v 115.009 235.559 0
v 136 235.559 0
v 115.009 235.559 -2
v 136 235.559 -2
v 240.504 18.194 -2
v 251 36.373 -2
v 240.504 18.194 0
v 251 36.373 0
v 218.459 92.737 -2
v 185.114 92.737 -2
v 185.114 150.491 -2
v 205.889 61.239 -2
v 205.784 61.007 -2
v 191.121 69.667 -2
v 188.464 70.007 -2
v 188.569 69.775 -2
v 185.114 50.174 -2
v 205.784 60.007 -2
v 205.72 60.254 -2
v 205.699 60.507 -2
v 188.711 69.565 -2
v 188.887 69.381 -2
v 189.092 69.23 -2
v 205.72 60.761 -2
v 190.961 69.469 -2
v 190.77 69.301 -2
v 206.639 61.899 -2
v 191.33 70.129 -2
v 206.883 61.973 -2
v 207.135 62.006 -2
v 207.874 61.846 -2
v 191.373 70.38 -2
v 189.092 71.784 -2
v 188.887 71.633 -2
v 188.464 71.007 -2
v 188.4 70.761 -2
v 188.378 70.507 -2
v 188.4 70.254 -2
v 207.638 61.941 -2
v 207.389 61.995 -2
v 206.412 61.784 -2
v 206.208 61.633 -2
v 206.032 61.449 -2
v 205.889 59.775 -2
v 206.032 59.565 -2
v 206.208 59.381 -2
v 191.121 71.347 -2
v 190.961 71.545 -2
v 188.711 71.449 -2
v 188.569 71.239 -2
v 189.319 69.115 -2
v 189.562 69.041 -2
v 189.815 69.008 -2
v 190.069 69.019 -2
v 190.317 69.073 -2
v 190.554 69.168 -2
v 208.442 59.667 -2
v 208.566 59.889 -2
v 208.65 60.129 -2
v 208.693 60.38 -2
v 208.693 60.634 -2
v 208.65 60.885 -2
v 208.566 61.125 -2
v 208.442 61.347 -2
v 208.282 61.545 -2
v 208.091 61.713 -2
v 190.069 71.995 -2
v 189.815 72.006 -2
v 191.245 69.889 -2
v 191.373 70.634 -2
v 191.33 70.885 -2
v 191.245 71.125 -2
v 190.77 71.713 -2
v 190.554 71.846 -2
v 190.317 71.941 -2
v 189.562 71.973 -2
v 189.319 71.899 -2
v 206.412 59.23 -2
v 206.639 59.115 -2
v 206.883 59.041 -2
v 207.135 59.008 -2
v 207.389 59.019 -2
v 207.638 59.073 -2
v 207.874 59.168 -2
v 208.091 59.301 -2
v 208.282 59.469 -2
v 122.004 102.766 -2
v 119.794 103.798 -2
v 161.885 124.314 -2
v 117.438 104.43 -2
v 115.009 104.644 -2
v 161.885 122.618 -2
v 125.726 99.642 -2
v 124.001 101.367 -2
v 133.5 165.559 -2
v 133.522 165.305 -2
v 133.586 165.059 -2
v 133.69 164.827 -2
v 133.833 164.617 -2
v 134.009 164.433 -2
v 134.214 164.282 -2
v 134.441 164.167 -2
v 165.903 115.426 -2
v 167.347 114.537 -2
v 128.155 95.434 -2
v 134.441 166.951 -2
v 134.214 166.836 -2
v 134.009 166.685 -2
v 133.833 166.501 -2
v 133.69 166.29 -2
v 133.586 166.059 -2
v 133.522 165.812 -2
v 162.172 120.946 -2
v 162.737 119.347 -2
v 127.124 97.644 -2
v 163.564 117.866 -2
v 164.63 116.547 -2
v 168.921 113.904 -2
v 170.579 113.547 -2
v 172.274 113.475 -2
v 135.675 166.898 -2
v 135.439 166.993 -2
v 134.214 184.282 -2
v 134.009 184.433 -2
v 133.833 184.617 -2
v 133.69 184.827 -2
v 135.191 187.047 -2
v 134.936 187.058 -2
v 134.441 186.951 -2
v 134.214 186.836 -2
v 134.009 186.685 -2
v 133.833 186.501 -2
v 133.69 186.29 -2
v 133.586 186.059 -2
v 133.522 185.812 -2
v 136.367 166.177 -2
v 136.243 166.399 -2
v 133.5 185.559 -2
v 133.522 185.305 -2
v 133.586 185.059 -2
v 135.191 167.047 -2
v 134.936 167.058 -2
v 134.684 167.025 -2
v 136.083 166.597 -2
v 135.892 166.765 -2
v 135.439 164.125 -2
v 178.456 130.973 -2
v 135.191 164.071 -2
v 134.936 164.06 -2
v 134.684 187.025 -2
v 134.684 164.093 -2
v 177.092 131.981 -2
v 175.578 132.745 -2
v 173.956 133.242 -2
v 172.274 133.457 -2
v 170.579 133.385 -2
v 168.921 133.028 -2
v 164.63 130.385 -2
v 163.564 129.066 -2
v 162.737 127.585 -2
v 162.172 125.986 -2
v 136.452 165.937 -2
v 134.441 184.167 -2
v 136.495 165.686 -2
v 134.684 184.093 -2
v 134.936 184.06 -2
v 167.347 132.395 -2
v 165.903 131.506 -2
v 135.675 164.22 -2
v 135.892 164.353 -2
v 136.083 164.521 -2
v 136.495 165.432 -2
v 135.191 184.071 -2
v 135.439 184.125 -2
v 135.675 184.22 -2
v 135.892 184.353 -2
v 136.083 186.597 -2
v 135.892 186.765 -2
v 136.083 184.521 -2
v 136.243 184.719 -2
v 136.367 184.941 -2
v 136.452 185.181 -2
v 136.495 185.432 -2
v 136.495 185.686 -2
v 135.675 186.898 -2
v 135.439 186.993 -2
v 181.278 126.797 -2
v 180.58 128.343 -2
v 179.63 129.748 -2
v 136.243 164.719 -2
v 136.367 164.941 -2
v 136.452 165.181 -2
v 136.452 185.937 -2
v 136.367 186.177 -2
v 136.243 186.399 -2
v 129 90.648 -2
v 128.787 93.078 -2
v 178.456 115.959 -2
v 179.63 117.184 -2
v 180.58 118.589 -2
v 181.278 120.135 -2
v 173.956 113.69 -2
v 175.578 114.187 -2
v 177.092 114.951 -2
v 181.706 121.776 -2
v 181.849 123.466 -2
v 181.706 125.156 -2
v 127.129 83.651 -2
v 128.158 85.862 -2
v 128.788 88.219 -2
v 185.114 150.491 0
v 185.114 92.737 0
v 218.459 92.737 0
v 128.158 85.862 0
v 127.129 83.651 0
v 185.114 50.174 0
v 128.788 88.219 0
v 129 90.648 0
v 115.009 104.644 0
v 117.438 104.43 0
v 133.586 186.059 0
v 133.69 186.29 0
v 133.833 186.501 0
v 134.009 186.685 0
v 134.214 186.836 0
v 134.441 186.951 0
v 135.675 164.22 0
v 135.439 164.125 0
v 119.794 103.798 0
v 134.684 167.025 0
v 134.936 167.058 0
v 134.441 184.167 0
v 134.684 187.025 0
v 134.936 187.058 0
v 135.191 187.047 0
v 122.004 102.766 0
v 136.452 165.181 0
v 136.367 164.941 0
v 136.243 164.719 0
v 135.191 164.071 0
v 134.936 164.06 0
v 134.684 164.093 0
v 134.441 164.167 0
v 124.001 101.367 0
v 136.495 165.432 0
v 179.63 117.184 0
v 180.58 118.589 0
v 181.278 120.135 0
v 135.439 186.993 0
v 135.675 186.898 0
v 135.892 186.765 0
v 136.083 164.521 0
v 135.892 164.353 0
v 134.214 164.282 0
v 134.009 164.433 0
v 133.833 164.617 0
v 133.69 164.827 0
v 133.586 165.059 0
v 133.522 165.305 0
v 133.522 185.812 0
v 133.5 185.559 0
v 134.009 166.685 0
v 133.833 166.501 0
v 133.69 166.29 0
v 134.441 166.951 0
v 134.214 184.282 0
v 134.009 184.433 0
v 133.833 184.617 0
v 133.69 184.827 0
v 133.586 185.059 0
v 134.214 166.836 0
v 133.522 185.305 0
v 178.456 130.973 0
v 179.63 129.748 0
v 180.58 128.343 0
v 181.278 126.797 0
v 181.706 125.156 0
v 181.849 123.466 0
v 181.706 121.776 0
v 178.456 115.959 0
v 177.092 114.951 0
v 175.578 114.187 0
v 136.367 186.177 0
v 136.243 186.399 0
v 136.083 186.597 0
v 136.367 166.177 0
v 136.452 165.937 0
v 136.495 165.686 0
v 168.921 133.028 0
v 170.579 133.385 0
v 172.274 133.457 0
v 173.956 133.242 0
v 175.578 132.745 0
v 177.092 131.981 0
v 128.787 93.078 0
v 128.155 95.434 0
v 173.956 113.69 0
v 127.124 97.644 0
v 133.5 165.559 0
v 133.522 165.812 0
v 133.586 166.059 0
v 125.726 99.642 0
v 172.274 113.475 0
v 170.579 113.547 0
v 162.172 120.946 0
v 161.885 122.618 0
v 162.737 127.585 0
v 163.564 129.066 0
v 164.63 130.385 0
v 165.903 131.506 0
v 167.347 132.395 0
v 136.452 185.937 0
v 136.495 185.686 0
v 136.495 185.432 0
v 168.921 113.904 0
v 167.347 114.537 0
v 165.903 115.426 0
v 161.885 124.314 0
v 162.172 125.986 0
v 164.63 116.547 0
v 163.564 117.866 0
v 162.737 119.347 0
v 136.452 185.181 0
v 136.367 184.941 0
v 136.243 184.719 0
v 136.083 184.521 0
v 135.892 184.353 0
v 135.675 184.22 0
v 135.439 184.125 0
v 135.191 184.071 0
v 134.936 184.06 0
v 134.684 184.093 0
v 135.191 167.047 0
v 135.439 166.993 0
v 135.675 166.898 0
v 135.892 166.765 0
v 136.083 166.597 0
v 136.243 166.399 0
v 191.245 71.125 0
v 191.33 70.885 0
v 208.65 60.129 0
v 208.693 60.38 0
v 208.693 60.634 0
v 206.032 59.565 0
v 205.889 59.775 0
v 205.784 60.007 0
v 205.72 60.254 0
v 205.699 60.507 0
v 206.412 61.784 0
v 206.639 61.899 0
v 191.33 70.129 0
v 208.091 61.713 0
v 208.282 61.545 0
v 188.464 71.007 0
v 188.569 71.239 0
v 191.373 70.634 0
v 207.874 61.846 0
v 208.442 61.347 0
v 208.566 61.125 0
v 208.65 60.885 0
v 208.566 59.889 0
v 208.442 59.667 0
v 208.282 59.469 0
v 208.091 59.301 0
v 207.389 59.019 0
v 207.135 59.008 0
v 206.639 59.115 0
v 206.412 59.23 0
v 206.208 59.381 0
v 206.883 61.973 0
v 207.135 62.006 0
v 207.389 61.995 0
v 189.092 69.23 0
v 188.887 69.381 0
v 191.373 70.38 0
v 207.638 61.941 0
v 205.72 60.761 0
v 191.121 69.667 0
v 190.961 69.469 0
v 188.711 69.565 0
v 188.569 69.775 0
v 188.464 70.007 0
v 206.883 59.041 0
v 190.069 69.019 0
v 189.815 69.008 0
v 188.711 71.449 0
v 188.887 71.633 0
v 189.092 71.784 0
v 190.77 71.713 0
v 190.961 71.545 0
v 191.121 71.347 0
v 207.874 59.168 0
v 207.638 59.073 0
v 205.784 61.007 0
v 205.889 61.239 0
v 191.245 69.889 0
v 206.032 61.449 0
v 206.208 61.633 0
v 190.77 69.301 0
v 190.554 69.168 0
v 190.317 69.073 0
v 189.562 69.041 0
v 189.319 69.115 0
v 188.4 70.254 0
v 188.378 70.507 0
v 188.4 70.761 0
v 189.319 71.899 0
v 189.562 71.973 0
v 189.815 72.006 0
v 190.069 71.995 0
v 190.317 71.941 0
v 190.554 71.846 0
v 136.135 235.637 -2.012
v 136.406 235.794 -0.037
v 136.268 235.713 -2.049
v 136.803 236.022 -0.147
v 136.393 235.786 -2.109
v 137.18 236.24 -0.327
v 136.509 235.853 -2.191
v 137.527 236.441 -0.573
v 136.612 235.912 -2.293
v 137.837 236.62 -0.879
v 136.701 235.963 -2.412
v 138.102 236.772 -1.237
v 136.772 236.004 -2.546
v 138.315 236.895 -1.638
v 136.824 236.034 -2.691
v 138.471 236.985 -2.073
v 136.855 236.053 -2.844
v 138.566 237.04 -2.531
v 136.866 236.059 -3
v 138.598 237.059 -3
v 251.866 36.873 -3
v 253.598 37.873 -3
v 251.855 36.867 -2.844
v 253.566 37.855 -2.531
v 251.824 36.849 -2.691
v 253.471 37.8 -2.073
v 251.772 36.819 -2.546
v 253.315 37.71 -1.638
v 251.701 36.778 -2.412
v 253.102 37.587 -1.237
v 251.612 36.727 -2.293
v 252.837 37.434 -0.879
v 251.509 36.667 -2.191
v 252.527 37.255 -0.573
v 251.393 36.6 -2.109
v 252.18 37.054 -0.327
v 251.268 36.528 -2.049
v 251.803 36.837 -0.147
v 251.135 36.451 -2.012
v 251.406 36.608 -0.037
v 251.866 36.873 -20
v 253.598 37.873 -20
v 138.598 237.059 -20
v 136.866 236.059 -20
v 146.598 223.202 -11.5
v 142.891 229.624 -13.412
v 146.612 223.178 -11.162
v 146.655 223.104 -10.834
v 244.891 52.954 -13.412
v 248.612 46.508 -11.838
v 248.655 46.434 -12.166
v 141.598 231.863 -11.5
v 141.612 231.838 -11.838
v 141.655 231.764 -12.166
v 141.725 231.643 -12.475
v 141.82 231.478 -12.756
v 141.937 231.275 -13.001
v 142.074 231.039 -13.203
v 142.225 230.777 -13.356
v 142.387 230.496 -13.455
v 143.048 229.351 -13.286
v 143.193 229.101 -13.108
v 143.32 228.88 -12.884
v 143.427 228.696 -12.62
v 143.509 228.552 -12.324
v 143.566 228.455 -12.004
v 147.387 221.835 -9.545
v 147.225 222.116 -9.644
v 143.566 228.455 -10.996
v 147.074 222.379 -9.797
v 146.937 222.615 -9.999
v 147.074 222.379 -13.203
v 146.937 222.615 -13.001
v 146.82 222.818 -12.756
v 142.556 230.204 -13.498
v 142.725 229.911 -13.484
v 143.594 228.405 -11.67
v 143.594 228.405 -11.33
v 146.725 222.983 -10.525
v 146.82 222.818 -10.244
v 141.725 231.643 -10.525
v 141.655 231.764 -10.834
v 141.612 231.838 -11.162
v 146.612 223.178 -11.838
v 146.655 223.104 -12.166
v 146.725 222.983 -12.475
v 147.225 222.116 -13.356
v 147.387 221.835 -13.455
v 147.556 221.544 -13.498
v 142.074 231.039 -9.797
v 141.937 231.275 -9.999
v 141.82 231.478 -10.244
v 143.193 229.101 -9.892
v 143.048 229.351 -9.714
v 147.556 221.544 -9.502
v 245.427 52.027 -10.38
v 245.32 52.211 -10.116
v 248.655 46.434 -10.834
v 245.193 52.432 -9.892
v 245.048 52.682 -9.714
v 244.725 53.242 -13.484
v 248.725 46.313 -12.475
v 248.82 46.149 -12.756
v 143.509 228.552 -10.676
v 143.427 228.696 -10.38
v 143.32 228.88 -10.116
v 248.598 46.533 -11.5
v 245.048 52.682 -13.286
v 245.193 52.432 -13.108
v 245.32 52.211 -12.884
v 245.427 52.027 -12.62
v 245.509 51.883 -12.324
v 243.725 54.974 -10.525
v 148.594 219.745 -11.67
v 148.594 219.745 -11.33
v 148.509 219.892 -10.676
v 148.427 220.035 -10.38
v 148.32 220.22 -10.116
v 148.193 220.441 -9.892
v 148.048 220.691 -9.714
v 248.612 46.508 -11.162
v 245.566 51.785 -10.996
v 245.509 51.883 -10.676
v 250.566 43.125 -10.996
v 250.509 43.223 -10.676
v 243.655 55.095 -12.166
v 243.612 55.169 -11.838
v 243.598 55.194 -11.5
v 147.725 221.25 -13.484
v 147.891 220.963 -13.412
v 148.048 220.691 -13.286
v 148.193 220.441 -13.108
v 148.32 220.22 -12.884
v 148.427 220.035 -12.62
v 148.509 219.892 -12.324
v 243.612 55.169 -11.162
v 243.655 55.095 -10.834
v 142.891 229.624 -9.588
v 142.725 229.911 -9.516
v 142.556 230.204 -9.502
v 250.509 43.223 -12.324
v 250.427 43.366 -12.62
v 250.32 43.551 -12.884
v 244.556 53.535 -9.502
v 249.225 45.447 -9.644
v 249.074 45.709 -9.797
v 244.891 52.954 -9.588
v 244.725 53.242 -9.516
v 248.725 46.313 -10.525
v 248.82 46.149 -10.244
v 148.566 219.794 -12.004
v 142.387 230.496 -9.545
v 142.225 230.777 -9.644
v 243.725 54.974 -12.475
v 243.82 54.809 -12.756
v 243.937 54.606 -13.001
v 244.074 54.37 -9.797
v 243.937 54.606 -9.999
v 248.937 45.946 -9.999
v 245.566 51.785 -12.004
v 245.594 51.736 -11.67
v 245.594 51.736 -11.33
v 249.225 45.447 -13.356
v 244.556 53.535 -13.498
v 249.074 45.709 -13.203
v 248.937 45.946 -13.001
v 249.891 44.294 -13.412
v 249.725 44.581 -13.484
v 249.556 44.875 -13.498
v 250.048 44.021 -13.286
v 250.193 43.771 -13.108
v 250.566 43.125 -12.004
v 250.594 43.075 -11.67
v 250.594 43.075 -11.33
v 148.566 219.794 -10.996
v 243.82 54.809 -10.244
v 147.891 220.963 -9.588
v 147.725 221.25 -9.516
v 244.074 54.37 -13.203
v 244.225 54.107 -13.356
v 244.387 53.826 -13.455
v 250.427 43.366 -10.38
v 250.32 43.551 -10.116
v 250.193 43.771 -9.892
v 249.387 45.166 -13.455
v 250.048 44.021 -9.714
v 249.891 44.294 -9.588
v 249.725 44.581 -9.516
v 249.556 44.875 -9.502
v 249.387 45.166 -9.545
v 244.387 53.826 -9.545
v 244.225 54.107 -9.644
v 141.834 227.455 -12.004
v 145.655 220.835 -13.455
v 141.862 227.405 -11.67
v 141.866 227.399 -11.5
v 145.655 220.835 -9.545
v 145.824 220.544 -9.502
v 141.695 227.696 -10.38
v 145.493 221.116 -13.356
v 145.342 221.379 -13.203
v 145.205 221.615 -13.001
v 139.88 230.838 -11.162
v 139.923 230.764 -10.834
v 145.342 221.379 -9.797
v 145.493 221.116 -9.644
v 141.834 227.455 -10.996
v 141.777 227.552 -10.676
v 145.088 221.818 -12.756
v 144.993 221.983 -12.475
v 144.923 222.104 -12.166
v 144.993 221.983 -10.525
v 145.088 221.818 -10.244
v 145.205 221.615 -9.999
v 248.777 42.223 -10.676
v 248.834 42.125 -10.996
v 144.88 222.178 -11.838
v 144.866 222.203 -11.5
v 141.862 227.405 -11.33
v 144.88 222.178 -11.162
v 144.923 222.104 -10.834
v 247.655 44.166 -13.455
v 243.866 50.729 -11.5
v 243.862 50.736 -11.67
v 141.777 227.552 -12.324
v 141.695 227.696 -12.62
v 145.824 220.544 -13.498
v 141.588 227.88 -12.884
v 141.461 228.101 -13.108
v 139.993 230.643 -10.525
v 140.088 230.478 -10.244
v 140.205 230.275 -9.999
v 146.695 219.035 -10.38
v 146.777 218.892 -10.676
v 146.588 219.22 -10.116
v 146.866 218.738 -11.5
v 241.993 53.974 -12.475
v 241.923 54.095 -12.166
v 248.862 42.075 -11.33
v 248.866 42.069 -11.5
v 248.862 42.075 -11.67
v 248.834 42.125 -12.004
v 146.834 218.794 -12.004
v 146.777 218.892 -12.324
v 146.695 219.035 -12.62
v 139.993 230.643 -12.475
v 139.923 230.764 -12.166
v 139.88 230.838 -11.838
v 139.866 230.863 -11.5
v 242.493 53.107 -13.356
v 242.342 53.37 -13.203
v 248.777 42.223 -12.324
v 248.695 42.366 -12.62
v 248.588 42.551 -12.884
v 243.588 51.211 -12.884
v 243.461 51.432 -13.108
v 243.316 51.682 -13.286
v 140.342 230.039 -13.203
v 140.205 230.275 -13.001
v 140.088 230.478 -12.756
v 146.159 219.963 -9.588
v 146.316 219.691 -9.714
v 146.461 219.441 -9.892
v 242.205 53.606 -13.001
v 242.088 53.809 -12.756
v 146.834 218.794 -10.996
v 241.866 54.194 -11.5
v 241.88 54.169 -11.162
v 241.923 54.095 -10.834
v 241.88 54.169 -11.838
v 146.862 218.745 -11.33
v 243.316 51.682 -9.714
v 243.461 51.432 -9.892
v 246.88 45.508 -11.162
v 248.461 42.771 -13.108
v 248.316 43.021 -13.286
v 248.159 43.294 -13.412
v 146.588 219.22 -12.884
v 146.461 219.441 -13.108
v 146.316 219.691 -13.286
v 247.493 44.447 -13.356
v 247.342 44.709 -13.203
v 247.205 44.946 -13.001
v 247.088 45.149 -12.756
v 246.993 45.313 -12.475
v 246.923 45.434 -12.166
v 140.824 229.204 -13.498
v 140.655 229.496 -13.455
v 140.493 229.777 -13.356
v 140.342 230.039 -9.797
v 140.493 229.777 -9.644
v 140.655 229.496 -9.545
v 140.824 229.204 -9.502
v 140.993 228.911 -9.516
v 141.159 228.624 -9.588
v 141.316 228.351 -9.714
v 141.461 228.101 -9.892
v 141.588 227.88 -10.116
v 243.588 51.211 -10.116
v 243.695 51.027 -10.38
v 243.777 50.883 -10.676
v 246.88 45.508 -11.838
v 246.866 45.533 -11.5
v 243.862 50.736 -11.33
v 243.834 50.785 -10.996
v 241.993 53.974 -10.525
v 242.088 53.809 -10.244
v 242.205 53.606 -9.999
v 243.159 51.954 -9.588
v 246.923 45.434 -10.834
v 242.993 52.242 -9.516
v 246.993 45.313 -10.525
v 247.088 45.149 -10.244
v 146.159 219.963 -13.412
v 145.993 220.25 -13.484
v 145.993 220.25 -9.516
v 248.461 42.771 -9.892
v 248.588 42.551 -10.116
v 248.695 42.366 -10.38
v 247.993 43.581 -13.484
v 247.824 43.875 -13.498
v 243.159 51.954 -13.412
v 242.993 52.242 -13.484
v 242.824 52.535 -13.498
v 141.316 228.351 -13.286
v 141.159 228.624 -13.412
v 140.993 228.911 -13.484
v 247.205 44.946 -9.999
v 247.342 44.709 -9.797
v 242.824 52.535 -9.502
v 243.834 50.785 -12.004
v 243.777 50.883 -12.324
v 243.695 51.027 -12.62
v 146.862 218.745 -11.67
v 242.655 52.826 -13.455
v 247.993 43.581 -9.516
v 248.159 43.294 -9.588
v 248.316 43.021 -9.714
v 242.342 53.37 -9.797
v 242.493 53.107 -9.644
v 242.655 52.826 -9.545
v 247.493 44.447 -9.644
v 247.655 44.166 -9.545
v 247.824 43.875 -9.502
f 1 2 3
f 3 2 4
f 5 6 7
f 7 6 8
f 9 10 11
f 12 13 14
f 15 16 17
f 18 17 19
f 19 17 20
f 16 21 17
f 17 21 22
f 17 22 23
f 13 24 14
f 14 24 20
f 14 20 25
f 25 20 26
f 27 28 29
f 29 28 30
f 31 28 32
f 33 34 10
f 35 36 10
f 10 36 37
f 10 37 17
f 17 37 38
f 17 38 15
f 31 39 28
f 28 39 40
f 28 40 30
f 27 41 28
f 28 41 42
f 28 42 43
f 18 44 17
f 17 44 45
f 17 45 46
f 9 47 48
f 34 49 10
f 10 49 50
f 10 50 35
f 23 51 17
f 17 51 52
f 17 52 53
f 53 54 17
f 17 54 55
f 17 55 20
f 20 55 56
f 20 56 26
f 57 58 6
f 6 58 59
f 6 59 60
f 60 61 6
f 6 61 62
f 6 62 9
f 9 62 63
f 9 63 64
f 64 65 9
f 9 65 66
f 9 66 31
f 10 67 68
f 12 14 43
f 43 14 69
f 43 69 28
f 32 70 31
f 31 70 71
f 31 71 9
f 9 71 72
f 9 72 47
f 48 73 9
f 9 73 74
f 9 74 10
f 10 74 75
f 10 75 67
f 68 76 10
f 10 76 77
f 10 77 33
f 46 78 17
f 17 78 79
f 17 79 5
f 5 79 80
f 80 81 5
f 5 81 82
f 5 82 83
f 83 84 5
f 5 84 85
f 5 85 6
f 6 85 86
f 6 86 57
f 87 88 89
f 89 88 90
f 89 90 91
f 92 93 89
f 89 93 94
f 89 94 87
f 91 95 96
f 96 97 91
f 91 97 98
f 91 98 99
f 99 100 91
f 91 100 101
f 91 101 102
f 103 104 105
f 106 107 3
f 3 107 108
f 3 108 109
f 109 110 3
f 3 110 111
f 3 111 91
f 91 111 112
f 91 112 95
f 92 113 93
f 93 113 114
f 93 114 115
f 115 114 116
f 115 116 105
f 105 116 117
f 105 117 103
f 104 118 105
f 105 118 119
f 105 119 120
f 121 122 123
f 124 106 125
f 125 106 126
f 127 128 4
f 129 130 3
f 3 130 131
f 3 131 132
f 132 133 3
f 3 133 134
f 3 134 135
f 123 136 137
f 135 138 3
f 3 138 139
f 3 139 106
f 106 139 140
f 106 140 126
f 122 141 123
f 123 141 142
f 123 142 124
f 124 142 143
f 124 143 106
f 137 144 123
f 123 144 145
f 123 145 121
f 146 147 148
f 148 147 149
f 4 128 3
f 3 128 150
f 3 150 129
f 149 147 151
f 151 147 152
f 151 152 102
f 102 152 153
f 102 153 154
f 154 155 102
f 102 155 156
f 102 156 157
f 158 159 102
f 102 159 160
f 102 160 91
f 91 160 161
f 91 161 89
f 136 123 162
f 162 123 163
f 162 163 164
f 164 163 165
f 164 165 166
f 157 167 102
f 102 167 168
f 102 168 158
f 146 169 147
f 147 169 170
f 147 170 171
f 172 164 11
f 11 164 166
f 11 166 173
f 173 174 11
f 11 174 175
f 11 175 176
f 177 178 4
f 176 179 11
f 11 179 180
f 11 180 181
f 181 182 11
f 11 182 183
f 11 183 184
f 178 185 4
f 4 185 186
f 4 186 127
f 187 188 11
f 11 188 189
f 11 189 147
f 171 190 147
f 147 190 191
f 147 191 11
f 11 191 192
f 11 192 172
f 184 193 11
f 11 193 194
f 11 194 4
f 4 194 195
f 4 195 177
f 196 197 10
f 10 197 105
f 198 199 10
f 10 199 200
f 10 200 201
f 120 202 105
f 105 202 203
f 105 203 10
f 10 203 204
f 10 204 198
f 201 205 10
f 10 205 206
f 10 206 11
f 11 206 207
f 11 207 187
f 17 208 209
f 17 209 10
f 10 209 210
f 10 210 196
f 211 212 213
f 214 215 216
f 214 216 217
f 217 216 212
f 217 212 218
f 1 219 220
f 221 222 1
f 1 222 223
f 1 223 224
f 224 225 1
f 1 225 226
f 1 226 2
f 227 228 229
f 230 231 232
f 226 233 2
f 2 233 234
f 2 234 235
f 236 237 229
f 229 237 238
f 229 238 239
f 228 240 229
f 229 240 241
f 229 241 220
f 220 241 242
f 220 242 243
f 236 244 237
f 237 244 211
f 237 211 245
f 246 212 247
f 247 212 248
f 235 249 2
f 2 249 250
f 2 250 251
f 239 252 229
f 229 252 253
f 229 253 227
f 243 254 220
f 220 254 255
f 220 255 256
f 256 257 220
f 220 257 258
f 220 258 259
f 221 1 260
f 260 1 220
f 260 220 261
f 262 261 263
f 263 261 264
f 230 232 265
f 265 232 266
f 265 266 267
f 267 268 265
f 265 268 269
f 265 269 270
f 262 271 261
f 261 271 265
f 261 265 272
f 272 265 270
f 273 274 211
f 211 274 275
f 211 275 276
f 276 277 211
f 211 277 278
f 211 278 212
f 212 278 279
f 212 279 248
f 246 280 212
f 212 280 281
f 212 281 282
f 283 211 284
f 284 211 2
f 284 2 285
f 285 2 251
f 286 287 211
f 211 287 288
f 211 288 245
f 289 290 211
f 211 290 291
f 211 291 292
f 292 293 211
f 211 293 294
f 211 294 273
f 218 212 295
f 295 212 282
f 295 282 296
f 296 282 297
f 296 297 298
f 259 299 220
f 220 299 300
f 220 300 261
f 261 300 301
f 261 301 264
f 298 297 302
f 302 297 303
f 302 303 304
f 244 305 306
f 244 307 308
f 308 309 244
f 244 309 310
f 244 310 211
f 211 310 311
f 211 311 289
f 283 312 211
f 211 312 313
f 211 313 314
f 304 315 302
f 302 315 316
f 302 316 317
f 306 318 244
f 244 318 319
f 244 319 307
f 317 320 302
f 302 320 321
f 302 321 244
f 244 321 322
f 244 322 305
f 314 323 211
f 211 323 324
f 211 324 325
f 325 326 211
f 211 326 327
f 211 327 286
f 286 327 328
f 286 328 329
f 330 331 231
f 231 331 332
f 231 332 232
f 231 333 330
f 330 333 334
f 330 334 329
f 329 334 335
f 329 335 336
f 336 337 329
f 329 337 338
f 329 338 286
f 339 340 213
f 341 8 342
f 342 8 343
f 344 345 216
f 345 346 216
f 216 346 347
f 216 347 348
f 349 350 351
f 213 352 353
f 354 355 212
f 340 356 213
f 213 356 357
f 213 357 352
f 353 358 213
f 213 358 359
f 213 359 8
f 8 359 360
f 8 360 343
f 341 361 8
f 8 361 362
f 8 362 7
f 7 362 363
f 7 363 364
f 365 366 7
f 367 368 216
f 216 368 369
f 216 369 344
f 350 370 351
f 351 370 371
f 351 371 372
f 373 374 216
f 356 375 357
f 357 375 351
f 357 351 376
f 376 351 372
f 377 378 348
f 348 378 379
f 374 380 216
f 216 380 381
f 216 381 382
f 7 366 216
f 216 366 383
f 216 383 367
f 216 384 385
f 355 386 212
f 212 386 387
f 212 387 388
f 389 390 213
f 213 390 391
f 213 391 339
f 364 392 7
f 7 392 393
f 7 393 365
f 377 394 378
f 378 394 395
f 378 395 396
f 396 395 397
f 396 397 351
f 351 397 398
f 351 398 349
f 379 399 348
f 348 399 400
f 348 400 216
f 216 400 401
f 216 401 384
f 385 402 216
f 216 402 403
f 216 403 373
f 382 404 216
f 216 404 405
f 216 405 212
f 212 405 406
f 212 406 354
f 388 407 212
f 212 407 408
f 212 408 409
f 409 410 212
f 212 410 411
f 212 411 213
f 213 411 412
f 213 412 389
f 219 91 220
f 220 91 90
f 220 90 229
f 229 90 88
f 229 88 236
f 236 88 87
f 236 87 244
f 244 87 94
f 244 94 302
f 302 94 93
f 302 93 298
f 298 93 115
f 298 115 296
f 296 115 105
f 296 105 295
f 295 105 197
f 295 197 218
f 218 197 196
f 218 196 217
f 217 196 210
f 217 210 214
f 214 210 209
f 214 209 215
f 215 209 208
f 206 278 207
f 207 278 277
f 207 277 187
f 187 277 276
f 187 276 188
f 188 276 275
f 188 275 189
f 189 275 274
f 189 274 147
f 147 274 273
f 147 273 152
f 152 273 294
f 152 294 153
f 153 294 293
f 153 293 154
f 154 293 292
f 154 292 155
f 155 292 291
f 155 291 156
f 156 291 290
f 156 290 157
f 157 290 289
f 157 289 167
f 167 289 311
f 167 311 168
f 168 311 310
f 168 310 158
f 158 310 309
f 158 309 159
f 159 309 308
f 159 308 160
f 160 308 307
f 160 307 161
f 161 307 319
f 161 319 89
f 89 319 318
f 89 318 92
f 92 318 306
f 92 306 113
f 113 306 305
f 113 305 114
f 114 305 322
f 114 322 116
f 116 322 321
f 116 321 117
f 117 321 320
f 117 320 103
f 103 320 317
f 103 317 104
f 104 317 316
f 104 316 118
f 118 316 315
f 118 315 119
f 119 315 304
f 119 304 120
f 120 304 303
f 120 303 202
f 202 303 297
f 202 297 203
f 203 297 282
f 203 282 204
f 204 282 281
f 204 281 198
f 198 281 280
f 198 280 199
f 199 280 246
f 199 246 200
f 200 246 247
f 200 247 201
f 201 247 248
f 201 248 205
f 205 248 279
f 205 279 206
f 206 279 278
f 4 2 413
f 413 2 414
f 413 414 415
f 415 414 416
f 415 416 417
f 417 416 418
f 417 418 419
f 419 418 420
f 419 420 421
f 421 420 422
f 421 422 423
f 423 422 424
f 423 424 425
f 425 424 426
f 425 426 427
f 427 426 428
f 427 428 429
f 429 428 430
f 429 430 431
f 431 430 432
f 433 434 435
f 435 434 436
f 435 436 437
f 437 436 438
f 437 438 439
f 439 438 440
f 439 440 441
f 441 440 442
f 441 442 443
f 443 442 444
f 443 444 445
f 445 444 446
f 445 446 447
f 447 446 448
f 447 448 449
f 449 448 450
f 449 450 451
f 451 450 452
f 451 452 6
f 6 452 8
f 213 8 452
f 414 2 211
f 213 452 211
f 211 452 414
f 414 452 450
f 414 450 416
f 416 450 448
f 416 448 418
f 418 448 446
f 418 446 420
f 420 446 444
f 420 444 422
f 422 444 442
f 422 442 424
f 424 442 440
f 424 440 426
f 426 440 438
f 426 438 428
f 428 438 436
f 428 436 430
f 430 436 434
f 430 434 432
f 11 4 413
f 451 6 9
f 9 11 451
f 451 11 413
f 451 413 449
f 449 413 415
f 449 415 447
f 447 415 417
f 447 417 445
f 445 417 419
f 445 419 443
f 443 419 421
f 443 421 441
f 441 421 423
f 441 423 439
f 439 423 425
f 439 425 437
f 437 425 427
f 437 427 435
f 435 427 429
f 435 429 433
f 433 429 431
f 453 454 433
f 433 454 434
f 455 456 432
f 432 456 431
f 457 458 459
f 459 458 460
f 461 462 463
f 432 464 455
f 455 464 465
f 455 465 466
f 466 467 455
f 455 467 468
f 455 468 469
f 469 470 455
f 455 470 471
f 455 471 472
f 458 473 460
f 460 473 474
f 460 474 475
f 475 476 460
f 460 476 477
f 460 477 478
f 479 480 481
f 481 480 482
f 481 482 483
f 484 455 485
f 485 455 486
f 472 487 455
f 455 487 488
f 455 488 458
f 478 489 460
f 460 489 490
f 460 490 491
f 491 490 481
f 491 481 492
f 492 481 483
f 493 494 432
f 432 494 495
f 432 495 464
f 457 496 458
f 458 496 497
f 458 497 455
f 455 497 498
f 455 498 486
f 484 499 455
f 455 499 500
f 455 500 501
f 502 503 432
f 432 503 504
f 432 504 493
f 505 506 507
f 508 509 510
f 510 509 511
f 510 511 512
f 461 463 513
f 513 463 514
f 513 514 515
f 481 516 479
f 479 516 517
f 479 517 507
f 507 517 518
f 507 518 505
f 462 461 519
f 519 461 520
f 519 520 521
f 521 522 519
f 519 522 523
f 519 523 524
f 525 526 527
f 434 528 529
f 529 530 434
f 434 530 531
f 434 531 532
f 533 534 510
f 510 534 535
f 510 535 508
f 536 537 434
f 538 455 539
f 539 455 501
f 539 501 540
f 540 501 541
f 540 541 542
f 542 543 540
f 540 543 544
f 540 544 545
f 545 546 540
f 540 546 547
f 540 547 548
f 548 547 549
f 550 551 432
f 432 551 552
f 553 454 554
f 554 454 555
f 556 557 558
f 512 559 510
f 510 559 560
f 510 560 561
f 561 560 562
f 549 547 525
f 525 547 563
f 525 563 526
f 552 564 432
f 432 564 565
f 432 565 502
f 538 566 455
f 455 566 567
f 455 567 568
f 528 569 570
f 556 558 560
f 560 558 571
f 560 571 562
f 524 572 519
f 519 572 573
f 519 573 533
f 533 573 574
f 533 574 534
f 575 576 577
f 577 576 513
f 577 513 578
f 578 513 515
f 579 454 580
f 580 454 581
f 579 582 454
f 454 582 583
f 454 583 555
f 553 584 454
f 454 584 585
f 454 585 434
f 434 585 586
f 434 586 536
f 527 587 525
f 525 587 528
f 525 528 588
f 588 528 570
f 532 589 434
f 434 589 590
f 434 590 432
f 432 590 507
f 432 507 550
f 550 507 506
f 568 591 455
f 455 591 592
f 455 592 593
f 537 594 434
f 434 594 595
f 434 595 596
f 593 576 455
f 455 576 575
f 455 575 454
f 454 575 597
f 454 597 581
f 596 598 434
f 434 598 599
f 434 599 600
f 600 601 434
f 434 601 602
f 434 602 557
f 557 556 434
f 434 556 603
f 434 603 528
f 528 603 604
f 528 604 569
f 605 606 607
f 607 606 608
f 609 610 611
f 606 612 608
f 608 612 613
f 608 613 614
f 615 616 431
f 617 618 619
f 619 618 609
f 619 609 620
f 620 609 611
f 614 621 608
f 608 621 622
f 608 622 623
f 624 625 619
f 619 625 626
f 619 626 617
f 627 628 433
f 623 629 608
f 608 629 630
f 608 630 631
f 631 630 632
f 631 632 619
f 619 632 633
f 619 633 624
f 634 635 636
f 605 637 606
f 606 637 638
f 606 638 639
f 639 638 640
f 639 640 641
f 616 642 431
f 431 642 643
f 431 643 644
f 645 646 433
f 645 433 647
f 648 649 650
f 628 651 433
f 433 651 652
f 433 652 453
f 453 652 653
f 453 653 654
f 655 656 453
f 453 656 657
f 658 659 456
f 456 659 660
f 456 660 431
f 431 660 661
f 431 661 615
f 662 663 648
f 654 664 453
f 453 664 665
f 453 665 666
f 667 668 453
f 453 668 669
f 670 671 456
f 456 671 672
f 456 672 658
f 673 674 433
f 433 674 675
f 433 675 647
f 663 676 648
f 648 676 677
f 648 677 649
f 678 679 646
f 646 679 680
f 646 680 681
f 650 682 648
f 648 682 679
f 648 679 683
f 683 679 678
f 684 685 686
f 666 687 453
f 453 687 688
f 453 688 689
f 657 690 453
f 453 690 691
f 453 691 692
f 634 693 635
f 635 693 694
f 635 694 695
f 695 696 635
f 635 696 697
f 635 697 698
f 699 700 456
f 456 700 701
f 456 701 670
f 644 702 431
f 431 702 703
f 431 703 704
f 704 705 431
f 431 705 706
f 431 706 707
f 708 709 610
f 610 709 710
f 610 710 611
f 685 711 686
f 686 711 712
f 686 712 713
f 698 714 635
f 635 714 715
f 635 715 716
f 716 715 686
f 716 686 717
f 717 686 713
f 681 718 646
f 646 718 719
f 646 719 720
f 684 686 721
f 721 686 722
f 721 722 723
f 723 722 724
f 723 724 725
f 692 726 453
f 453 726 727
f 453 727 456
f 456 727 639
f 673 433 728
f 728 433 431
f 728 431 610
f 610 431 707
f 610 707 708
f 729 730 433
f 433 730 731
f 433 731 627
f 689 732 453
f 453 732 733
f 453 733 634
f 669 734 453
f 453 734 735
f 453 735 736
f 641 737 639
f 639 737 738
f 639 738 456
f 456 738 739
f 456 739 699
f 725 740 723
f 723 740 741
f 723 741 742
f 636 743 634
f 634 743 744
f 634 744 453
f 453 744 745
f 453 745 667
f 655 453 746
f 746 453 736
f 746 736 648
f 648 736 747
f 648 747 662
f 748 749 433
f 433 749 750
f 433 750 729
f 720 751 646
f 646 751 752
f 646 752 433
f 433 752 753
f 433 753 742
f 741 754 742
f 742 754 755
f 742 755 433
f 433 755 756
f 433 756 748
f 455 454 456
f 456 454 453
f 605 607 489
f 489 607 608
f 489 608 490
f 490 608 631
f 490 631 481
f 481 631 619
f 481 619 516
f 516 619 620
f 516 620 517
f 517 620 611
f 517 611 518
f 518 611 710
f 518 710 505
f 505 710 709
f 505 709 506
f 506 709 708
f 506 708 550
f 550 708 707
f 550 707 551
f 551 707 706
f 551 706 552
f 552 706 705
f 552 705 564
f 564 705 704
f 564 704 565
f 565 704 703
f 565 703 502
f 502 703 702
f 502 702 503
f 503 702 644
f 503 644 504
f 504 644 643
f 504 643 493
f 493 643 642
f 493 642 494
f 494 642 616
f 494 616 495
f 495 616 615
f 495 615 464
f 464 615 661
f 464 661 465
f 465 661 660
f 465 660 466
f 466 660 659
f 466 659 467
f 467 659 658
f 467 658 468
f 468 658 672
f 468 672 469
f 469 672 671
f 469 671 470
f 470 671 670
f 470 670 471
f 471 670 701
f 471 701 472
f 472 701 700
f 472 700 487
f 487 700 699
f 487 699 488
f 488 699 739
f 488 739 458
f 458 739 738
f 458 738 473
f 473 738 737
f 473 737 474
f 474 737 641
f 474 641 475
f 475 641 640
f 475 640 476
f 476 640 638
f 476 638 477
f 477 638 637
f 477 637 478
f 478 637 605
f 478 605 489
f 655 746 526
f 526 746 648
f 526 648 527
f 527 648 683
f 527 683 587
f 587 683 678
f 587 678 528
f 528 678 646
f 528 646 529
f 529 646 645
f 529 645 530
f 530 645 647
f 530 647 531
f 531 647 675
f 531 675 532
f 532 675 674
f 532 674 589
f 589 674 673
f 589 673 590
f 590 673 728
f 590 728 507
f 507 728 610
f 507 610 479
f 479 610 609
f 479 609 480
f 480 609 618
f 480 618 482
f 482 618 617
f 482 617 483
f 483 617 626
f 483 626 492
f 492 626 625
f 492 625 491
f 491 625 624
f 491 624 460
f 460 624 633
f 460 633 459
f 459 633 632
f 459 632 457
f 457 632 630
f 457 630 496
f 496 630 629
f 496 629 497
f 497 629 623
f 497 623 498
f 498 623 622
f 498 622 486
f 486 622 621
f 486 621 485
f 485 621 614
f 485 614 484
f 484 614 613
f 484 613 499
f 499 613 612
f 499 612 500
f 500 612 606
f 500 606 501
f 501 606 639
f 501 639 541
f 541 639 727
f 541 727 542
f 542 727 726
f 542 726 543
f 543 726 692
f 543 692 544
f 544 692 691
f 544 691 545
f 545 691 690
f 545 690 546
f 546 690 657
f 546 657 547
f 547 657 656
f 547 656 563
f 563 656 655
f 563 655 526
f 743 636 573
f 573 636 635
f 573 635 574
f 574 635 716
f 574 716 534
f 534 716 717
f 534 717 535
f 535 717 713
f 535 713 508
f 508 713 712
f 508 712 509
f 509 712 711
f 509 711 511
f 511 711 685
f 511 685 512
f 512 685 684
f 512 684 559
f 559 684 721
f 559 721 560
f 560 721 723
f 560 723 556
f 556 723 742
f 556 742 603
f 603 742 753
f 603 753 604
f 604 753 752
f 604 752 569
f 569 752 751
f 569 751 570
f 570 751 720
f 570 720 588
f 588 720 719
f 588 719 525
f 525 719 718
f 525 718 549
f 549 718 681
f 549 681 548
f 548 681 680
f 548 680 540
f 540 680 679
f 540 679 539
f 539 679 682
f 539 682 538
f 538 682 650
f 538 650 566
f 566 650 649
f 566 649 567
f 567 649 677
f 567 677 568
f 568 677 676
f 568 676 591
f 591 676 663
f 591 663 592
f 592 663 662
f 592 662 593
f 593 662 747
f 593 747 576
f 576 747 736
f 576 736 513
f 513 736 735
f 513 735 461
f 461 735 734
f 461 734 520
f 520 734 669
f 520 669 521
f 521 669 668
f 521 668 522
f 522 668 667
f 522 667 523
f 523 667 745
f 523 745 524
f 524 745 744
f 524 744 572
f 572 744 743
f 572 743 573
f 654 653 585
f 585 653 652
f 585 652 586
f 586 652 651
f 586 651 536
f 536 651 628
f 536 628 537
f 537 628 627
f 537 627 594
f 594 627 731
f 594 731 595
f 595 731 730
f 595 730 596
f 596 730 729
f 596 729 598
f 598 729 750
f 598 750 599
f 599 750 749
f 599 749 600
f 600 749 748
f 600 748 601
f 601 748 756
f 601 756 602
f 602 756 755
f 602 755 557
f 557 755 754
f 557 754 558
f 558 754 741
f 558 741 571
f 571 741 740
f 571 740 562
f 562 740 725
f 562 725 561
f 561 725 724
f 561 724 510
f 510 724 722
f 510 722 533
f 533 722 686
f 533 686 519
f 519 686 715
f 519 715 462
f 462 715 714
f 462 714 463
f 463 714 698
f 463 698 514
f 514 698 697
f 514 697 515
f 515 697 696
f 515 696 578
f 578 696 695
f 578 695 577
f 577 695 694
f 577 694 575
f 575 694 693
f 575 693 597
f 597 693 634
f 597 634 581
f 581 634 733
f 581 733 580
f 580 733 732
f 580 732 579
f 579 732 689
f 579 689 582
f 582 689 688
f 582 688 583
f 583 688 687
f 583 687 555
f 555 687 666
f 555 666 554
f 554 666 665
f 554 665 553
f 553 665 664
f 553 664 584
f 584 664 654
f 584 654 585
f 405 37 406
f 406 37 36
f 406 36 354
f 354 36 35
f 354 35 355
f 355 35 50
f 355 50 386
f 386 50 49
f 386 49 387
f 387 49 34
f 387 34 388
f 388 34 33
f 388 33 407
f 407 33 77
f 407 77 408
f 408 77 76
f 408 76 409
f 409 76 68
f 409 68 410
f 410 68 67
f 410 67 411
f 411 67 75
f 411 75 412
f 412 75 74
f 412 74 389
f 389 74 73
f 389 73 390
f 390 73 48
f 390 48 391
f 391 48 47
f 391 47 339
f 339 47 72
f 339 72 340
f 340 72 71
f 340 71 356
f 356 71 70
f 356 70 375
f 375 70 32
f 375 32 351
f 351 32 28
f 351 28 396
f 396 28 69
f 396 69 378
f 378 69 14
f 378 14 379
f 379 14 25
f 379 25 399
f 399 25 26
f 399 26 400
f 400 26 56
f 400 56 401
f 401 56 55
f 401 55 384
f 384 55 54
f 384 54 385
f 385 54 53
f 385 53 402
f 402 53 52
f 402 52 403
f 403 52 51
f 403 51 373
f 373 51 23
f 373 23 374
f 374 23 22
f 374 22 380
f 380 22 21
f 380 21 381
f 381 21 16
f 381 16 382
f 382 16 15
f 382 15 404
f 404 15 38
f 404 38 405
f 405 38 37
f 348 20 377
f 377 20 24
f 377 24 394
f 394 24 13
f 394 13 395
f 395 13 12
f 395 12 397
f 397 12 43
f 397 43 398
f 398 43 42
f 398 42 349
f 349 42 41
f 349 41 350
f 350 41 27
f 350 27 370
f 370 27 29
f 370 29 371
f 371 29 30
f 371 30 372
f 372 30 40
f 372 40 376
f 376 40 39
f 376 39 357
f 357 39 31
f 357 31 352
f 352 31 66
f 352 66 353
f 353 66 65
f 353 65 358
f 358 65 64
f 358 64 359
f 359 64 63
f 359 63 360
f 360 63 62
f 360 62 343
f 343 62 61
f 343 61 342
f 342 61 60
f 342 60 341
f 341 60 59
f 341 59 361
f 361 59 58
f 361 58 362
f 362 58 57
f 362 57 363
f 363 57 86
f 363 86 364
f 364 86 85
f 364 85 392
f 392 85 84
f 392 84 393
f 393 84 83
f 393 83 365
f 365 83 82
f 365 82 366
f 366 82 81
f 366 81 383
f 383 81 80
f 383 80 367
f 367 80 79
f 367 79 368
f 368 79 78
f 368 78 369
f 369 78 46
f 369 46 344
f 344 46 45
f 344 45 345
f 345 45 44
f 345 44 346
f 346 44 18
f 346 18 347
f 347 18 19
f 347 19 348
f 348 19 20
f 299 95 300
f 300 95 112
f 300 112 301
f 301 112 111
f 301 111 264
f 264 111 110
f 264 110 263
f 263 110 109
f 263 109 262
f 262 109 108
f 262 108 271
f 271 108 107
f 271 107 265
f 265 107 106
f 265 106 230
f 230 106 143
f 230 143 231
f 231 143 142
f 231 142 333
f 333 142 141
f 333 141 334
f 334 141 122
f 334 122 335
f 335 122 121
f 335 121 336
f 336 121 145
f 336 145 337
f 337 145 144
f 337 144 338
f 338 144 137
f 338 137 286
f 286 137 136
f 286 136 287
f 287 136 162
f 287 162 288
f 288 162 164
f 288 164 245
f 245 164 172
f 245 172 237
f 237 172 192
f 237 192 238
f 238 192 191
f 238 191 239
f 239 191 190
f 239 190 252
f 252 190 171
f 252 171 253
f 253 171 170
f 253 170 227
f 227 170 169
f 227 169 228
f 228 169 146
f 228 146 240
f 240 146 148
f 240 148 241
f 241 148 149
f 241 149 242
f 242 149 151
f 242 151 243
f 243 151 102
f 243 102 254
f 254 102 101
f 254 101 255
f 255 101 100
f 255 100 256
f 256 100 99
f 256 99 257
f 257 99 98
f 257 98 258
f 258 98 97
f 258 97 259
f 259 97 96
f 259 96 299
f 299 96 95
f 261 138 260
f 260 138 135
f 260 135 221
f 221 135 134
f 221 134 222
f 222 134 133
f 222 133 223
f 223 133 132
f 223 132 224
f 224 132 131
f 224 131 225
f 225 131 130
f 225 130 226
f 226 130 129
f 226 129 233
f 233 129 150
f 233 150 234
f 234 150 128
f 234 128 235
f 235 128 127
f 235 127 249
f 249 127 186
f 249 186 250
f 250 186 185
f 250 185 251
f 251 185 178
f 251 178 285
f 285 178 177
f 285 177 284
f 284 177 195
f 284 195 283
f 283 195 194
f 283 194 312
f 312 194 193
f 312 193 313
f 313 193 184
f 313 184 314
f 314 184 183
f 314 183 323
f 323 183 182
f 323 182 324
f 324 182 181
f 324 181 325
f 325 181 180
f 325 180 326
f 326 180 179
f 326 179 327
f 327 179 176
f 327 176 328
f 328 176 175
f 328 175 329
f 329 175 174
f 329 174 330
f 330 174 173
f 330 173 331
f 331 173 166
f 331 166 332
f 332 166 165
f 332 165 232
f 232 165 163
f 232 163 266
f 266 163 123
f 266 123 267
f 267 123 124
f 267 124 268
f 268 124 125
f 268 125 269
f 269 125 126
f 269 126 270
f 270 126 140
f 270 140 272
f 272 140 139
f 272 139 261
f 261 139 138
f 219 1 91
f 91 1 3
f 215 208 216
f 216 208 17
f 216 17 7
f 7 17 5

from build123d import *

# Parameters (mm, degrees)
SKETCH_10_R                   = 10
SM_BASE_FLANGE_3_DEPTH        = 2
SM_EDGE_FLANGE_6_DEPTH        = 230
SM_EDGE_FLANGE_6_BEND_DEPTH   = 230
SM_EDGE_FLANGE_6_BEND_2_DEPTH = 230
CUT_EXTRUDE_4_REACH           = 363.137
SKETCH_47_R                   = 2
CUT_EXTRUDE_6_REACH           = 263.424
SKETCH_50_R                   = 2
CUT_EXTRUDE_7_REACH           = 351.772
SKETCH_51_R                   = 2
CUT_EXTRUDE_8_REACH           = 349.61
SKETCH_52_R                   = 14
SKETCH_53_R                   = 1.5
CUT_EXTRUDE_9_DEPTH           = 10
OTHER_START                   = -20
OTHER_2_OUTLINE_R             = 1.5
OTHER_2_DEPTH                 = 20


# Read off the part's stored shape, not the designer's step: Полость2
# Sheet-metal steps are written as plain solids
with BuildPart() as part:
    # Эскиз10 → Базовая кромка3 (new body)
    with BuildSketch(Plane.XY):
        Polygon((0, 0), (-21, 36.373066959), (94, 235.558909829), (136, 235.558909829), (251, 36.373066959), (230, 0), align=None)
        with Locations((171.849364905, 123.465988394)):
            Circle(SKETCH_10_R, mode=Mode.SUBTRACT)
    extrude(amount=-SM_BASE_FLANGE_3_DEPTH)

    # Ребро-кромка6 section (across the edge) → Ребро-кромка6 (add)
    with BuildSketch(Plane(origin=(-21.866025404, 36.873066959, -2), x_dir=(0.8660254037844436, -0.4999999999999914, -3.4914813388431334e-15), z_dir=(0.4999999999999914, 0.8660254037844436, 0))):
        with BuildLine():
            Line((-2, 1), (-2, 18))
            Line((-2, 18), (0, 18))
            Line((0, 18), (0, 1))
            ThreePointArc((0, 1), (0.292893219, 0.292893219), (1, 0))
            Line((1, 0), (1, -2))
            ThreePointArc((1, -2), (-1.121320344, -1.121320344), (-2, 1))
        make_face()
    extrude(amount=SM_EDGE_FLANGE_6_DEPTH)

    # Ребро-кромка6 section 2 (across the edge) → Ребро-кромка6 bend (add)
    with BuildSketch(Plane(origin=(136.866025404, 236.058909829, -2), x_dir=(-0.8660254037844363, -0.5000000000000041, -3.4914813388431334e-15), z_dir=(0.5000000000000041, -0.8660254037844363, 0))):
        with BuildLine():
            Line((-2, 1), (-2, 18))
            Line((-2, 18), (0, 18))
            Line((0, 18), (0, 1))
            ThreePointArc((0, 1), (0.292893219, 0.292893219), (1, 0))
            Line((1, 0), (1, -2))
            ThreePointArc((1, -2), (-1.121320344, -1.121320344), (-2, 1))
        make_face()
    extrude(amount=SM_EDGE_FLANGE_6_BEND_DEPTH)

    # Ребро-кромка6 section 3 (across the edge) → Ребро-кромка6 bend 2 (add)
    with BuildSketch(Plane(origin=(230, -1, -2), x_dir=(0, 1, 0), z_dir=(-1, 0, 0))):
        with BuildLine():
            Line((-2, 1), (-2, 18))
            Line((-2, 18), (0, 18))
            Line((0, 18), (0, 1))
            ThreePointArc((0, 1), (0.292893219, 0.292893219), (1, 0))
            Line((1, 0), (1, -2))
            ThreePointArc((1, -2), (-1.121320344, -1.121320344), (-2, 1))
        make_face()
    extrude(amount=SM_EDGE_FLANGE_6_BEND_2_DEPTH)

    # Эскиз47 → Вырез-Вытянуть4 (cut, up to next)
    with BuildSketch(Plane(origin=(-34.098076211, 19.686533479, 0), x_dir=(0, 0, 1), z_dir=(-0.866025403784443, 0.4999999999999925, 3.788649256556814e-15)), mode=Mode.PRIVATE) as cut_extrude_4_sk1:
        with Locations(Location((-11.5, 29, 0), (0, 0, 270))):
            Circle(SKETCH_47_R)
    cut_extrude_4_tool1 = extrude(cut_extrude_4_sk1.sketch, amount=-CUT_EXTRUDE_4_REACH, mode=Mode.PRIVATE) & part.part
    # Эскиз47 → Вырез-Вытянуть4 (cut, up to next)
    with BuildSketch(Plane(origin=(-34.098076211, 19.686533479, 0), x_dir=(0, 0, 1), z_dir=(-0.866025403784443, 0.4999999999999925, 3.788649256556814e-15)), mode=Mode.PRIVATE) as cut_extrude_4_sk2:
        with Locations(Location((-11.5, 39, 0), (0, 0, 270))):
            Circle(SKETCH_47_R)
    cut_extrude_4_tool2 = extrude(cut_extrude_4_sk2.sketch, amount=-CUT_EXTRUDE_4_REACH, mode=Mode.PRIVATE) & part.part
    # Эскиз47 → Вырез-Вытянуть4 (cut, up to next)
    with BuildSketch(Plane(origin=(-34.098076211, 19.686533479, 0), x_dir=(0, 0, 1), z_dir=(-0.866025403784443, 0.4999999999999925, 3.788649256556814e-15)), mode=Mode.PRIVATE) as cut_extrude_4_sk3:
        with Locations(Location((-11.5, 233, 0), (0, 0, 270))):
            Circle(SKETCH_47_R)
    cut_extrude_4_tool3 = extrude(cut_extrude_4_sk3.sketch, amount=-CUT_EXTRUDE_4_REACH, mode=Mode.PRIVATE) & part.part
    # Эскиз47 → Вырез-Вытянуть4 (cut, up to next)
    with BuildSketch(Plane(origin=(-34.098076211, 19.686533479, 0), x_dir=(0, 0, 1), z_dir=(-0.866025403784443, 0.4999999999999925, 3.788649256556814e-15)), mode=Mode.PRIVATE) as cut_extrude_4_sk4:
        with Locations(Location((-11.5, 243, 0), (0, 0, 270))):
            Circle(SKETCH_47_R)
    cut_extrude_4_tool4 = extrude(cut_extrude_4_sk4.sketch, amount=-CUT_EXTRUDE_4_REACH, mode=Mode.PRIVATE) & part.part
    add(cut_extrude_4_tool1.solids().sort_by_distance((-19.598076, 44.80127, -11.5))[0], mode=Mode.SUBTRACT)
    add(cut_extrude_4_tool2.solids().sort_by_distance((-14.598076, 53.461524, -11.5))[0], mode=Mode.SUBTRACT)
    add(cut_extrude_4_tool3.solids().sort_by_distance((82.401924, 221.470453, -11.5))[0], mode=Mode.SUBTRACT)
    add(cut_extrude_4_tool4.solids().sort_by_distance((87.401924, 230.130707, -11.5))[0], mode=Mode.SUBTRACT)

    # Эскиз50 → Вырез-Вытянуть6 (cut, up to next)
    with BuildSketch(Plane(origin=(206.598076211, 119.279454915, 0), x_dir=(0, 0, -1), z_dir=(0.866025403784436, 0.5000000000000047, 3.0623287353932815e-15)), mode=Mode.PRIVATE) as cut_extrude_6_sk1:
        with Locations(Location((11.5, -86, 0), (0, 0, 90))):
            Circle(SKETCH_50_R)
    cut_extrude_6_tool1 = extrude(cut_extrude_6_sk1.sketch, amount=-CUT_EXTRUDE_6_REACH, mode=Mode.PRIVATE) & part.part
    # Эскиз50 → Вырез-Вытянуть6 (cut, up to next)
    with BuildSketch(Plane(origin=(206.598076211, 119.279454915, 0), x_dir=(0, 0, -1), z_dir=(0.866025403784436, 0.5000000000000047, 3.0623287353932815e-15)), mode=Mode.PRIVATE) as cut_extrude_6_sk2:
        with Locations(Location((11.5, -76, 0), (0, 0, 90))):
            Circle(SKETCH_50_R)
    cut_extrude_6_tool2 = extrude(cut_extrude_6_sk2.sketch, amount=-CUT_EXTRUDE_6_REACH, mode=Mode.PRIVATE) & part.part
    # Эскиз50 → Вырез-Вытянуть6 (cut, up to next)
    with BuildSketch(Plane(origin=(206.598076211, 119.279454915, 0), x_dir=(0, 0, -1), z_dir=(0.866025403784436, 0.5000000000000047, 3.0623287353932815e-15)), mode=Mode.PRIVATE) as cut_extrude_6_sk3:
        with Locations(Location((11.5, 118, 0), (0, 0, 90))):
            Circle(SKETCH_50_R)
    cut_extrude_6_tool3 = extrude(cut_extrude_6_sk3.sketch, amount=-CUT_EXTRUDE_6_REACH, mode=Mode.PRIVATE) & part.part
    # Эскиз50 → Вырез-Вытянуть6 (cut, up to next)
    with BuildSketch(Plane(origin=(206.598076211, 119.279454915, 0), x_dir=(0, 0, -1), z_dir=(0.866025403784436, 0.5000000000000047, 3.0623287353932815e-15)), mode=Mode.PRIVATE) as cut_extrude_6_sk4:
        with Locations(Location((11.5, 128, 0), (0, 0, 90))):
            Circle(SKETCH_50_R)
    cut_extrude_6_tool4 = extrude(cut_extrude_6_sk4.sketch, amount=-CUT_EXTRUDE_6_REACH, mode=Mode.PRIVATE) & part.part
    add(cut_extrude_6_tool1.solids().sort_by_distance((249.598076, 44.80127, -11.5))[0], mode=Mode.SUBTRACT)
    add(cut_extrude_6_tool2.solids().sort_by_distance((244.598076, 53.461524, -11.5))[0], mode=Mode.SUBTRACT)
    add(cut_extrude_6_tool3.solids().sort_by_distance((147.598076, 221.470453, -11.5))[0], mode=Mode.SUBTRACT)
    add(cut_extrude_6_tool4.solids().sort_by_distance((142.598076, 230.130707, -11.5))[0], mode=Mode.SUBTRACT)

    # Эскиз51 → Вырез-Вытянуть7 (cut, up to next)
    with BuildSketch(Plane.XZ.offset(3), mode=Mode.PRIVATE) as cut_extrude_7_sk1:
        with Locations(Location((222, -11.5, 0), (0, 0, 270))):
            Circle(SKETCH_51_R)
    cut_extrude_7_tool1 = extrude(cut_extrude_7_sk1.sketch, amount=-CUT_EXTRUDE_7_REACH, mode=Mode.PRIVATE) & part.part
    # Эскиз51 → Вырез-Вытянуть7 (cut, up to next)
    with BuildSketch(Plane.XZ.offset(3), mode=Mode.PRIVATE) as cut_extrude_7_sk2:
        with Locations(Location((212, -11.5, 0), (0, 0, 270))):
            Circle(SKETCH_51_R)
    cut_extrude_7_tool2 = extrude(cut_extrude_7_sk2.sketch, amount=-CUT_EXTRUDE_7_REACH, mode=Mode.PRIVATE) & part.part
    # Эскиз51 → Вырез-Вытянуть7 (cut, up to next)
    with BuildSketch(Plane.XZ.offset(3), mode=Mode.PRIVATE) as cut_extrude_7_sk3:
        with Locations(Location((18, -11.5, 0), (0, 0, 270))):
            Circle(SKETCH_51_R)
    cut_extrude_7_tool3 = extrude(cut_extrude_7_sk3.sketch, amount=-CUT_EXTRUDE_7_REACH, mode=Mode.PRIVATE) & part.part
    # Эскиз51 → Вырез-Вытянуть7 (cut, up to next)
    with BuildSketch(Plane.XZ.offset(3), mode=Mode.PRIVATE) as cut_extrude_7_sk4:
        with Locations(Location((8, -11.5, 0), (0, 0, 270))):
            Circle(SKETCH_51_R)
    cut_extrude_7_tool4 = extrude(cut_extrude_7_sk4.sketch, amount=-CUT_EXTRUDE_7_REACH, mode=Mode.PRIVATE) & part.part
    add(cut_extrude_7_tool1.solids().sort_by_distance((222, -3, -11.5))[0], mode=Mode.SUBTRACT)
    add(cut_extrude_7_tool2.solids().sort_by_distance((212, -3, -11.5))[0], mode=Mode.SUBTRACT)
    add(cut_extrude_7_tool3.solids().sort_by_distance((18, -3, -11.5))[0], mode=Mode.SUBTRACT)
    add(cut_extrude_7_tool4.solids().sort_by_distance((8, -3, -11.5))[0], mode=Mode.SUBTRACT)

    # Эскиз52 → Вырез-Вытянуть8 (cut, up to next)
    with BuildSketch(Plane(origin=(0, 0, -2), x_dir=(-1, 0, 0), z_dir=(0, 0, -1)), mode=Mode.PRIVATE) as cut_extrude_8_sk1:
        with Locations((-115, 90.643992263)):
            Circle(SKETCH_52_R)
    cut_extrude_8_tool1 = extrude(cut_extrude_8_sk1.sketch, amount=-CUT_EXTRUDE_8_REACH, mode=Mode.PRIVATE) & part.part
    add(cut_extrude_8_tool1.solids().sort_by_distance((115, 90.643992, -2))[0], mode=Mode.SUBTRACT)

    # Эскиз53 → Вырез-Вытянуть9 (cut)
    with BuildSketch(Plane(origin=(0, 0, -2), x_dir=(-1, 0, 0), z_dir=(0, 0, -1))):
        with Locations((-40.121778265, 70.507041555)):
            Circle(SKETCH_53_R)
        with Locations((-22.801270189, 60.507041555)):
            Circle(SKETCH_53_R)
        with Locations((-60.121778265, 35.866025404)):
            Circle(SKETCH_53_R)
        with Locations((-42.801270189, 25.866025404)):
            Circle(SKETCH_53_R)
        with Locations((-95, 185.558909829)):
            Circle(SKETCH_53_R)
        with Locations((-95, 165.558909829)):
            Circle(SKETCH_53_R)
        with Locations((-135, 185.558909829)):
            Circle(SKETCH_53_R)
        with Locations((-135, 165.558909829)):
            Circle(SKETCH_53_R)
        with Locations((-207.198729811, 60.507041555)):
            Circle(SKETCH_53_R)
        with Locations((-189.878221735, 70.507041555)):
            Circle(SKETCH_53_R)
        with Locations((-187.198729811, 25.866025404)):
            Circle(SKETCH_53_R)
        with Locations((-169.878221735, 35.866025404)):
            Circle(SKETCH_53_R)
    extrude(amount=-CUT_EXTRUDE_9_DEPTH, mode=Mode.SUBTRACT)

    # Полость2 outline → Полость2 (cut)
    with BuildSketch(Plane.XY.offset(OTHER_START)):
        with BuildLine():
            Line((115.008517475, 104.643989672), (115.008517475, 235.558909829))
            Line((115.008517475, 235.558909829), (94, 235.558909829))
            Line((94, 235.558909829), (91.401923789, 237.058909829))
            Line((91.401923789, 237.058909829), (-23.598076211, 37.873066959))
            Line((-23.598076211, 37.873066959), (-21, 36.373066959))
            Line((-21, 36.373066959), (0, 0))
            Line((0, 0), (0, -3))
            Line((0, -3), (230, -3))
            Line((230, -3), (230, 0))
            Line((230, 0), (240.504258738, 18.193909829))
            Line((240.504258738, 18.193909829), (127.128612147, 83.651369908))
            ThreePointArc((127.128612147, 83.651369908), (102.875644347, 83.643992263), (115.008517475, 104.643989672))
        make_face()
        with Locations((42.801270189, 25.866025404)):
            Circle(OTHER_2_OUTLINE_R, mode=Mode.SUBTRACT)
        with Locations((60.121778265, 35.866025404)):
            Circle(OTHER_2_OUTLINE_R, mode=Mode.SUBTRACT)
        with Locations((22.801270189, 60.507041555)):
            Circle(OTHER_2_OUTLINE_R, mode=Mode.SUBTRACT)
        with Locations((40.121778265, 70.507041555)):
            Circle(OTHER_2_OUTLINE_R, mode=Mode.SUBTRACT)
        with Locations((169.878221735, 35.866025404)):
            Circle(OTHER_2_OUTLINE_R, mode=Mode.SUBTRACT)
        with Locations((187.198729811, 25.866025404)):
            Circle(OTHER_2_OUTLINE_R, mode=Mode.SUBTRACT)
        with Locations((95, 165.558909829)):
            Circle(OTHER_2_OUTLINE_R, mode=Mode.SUBTRACT)
        with Locations((95, 185.558909829)):
            Circle(OTHER_2_OUTLINE_R, mode=Mode.SUBTRACT)
    extrude(amount=OTHER_2_DEPTH, mode=Mode.SUBTRACT)


solid = part.part
